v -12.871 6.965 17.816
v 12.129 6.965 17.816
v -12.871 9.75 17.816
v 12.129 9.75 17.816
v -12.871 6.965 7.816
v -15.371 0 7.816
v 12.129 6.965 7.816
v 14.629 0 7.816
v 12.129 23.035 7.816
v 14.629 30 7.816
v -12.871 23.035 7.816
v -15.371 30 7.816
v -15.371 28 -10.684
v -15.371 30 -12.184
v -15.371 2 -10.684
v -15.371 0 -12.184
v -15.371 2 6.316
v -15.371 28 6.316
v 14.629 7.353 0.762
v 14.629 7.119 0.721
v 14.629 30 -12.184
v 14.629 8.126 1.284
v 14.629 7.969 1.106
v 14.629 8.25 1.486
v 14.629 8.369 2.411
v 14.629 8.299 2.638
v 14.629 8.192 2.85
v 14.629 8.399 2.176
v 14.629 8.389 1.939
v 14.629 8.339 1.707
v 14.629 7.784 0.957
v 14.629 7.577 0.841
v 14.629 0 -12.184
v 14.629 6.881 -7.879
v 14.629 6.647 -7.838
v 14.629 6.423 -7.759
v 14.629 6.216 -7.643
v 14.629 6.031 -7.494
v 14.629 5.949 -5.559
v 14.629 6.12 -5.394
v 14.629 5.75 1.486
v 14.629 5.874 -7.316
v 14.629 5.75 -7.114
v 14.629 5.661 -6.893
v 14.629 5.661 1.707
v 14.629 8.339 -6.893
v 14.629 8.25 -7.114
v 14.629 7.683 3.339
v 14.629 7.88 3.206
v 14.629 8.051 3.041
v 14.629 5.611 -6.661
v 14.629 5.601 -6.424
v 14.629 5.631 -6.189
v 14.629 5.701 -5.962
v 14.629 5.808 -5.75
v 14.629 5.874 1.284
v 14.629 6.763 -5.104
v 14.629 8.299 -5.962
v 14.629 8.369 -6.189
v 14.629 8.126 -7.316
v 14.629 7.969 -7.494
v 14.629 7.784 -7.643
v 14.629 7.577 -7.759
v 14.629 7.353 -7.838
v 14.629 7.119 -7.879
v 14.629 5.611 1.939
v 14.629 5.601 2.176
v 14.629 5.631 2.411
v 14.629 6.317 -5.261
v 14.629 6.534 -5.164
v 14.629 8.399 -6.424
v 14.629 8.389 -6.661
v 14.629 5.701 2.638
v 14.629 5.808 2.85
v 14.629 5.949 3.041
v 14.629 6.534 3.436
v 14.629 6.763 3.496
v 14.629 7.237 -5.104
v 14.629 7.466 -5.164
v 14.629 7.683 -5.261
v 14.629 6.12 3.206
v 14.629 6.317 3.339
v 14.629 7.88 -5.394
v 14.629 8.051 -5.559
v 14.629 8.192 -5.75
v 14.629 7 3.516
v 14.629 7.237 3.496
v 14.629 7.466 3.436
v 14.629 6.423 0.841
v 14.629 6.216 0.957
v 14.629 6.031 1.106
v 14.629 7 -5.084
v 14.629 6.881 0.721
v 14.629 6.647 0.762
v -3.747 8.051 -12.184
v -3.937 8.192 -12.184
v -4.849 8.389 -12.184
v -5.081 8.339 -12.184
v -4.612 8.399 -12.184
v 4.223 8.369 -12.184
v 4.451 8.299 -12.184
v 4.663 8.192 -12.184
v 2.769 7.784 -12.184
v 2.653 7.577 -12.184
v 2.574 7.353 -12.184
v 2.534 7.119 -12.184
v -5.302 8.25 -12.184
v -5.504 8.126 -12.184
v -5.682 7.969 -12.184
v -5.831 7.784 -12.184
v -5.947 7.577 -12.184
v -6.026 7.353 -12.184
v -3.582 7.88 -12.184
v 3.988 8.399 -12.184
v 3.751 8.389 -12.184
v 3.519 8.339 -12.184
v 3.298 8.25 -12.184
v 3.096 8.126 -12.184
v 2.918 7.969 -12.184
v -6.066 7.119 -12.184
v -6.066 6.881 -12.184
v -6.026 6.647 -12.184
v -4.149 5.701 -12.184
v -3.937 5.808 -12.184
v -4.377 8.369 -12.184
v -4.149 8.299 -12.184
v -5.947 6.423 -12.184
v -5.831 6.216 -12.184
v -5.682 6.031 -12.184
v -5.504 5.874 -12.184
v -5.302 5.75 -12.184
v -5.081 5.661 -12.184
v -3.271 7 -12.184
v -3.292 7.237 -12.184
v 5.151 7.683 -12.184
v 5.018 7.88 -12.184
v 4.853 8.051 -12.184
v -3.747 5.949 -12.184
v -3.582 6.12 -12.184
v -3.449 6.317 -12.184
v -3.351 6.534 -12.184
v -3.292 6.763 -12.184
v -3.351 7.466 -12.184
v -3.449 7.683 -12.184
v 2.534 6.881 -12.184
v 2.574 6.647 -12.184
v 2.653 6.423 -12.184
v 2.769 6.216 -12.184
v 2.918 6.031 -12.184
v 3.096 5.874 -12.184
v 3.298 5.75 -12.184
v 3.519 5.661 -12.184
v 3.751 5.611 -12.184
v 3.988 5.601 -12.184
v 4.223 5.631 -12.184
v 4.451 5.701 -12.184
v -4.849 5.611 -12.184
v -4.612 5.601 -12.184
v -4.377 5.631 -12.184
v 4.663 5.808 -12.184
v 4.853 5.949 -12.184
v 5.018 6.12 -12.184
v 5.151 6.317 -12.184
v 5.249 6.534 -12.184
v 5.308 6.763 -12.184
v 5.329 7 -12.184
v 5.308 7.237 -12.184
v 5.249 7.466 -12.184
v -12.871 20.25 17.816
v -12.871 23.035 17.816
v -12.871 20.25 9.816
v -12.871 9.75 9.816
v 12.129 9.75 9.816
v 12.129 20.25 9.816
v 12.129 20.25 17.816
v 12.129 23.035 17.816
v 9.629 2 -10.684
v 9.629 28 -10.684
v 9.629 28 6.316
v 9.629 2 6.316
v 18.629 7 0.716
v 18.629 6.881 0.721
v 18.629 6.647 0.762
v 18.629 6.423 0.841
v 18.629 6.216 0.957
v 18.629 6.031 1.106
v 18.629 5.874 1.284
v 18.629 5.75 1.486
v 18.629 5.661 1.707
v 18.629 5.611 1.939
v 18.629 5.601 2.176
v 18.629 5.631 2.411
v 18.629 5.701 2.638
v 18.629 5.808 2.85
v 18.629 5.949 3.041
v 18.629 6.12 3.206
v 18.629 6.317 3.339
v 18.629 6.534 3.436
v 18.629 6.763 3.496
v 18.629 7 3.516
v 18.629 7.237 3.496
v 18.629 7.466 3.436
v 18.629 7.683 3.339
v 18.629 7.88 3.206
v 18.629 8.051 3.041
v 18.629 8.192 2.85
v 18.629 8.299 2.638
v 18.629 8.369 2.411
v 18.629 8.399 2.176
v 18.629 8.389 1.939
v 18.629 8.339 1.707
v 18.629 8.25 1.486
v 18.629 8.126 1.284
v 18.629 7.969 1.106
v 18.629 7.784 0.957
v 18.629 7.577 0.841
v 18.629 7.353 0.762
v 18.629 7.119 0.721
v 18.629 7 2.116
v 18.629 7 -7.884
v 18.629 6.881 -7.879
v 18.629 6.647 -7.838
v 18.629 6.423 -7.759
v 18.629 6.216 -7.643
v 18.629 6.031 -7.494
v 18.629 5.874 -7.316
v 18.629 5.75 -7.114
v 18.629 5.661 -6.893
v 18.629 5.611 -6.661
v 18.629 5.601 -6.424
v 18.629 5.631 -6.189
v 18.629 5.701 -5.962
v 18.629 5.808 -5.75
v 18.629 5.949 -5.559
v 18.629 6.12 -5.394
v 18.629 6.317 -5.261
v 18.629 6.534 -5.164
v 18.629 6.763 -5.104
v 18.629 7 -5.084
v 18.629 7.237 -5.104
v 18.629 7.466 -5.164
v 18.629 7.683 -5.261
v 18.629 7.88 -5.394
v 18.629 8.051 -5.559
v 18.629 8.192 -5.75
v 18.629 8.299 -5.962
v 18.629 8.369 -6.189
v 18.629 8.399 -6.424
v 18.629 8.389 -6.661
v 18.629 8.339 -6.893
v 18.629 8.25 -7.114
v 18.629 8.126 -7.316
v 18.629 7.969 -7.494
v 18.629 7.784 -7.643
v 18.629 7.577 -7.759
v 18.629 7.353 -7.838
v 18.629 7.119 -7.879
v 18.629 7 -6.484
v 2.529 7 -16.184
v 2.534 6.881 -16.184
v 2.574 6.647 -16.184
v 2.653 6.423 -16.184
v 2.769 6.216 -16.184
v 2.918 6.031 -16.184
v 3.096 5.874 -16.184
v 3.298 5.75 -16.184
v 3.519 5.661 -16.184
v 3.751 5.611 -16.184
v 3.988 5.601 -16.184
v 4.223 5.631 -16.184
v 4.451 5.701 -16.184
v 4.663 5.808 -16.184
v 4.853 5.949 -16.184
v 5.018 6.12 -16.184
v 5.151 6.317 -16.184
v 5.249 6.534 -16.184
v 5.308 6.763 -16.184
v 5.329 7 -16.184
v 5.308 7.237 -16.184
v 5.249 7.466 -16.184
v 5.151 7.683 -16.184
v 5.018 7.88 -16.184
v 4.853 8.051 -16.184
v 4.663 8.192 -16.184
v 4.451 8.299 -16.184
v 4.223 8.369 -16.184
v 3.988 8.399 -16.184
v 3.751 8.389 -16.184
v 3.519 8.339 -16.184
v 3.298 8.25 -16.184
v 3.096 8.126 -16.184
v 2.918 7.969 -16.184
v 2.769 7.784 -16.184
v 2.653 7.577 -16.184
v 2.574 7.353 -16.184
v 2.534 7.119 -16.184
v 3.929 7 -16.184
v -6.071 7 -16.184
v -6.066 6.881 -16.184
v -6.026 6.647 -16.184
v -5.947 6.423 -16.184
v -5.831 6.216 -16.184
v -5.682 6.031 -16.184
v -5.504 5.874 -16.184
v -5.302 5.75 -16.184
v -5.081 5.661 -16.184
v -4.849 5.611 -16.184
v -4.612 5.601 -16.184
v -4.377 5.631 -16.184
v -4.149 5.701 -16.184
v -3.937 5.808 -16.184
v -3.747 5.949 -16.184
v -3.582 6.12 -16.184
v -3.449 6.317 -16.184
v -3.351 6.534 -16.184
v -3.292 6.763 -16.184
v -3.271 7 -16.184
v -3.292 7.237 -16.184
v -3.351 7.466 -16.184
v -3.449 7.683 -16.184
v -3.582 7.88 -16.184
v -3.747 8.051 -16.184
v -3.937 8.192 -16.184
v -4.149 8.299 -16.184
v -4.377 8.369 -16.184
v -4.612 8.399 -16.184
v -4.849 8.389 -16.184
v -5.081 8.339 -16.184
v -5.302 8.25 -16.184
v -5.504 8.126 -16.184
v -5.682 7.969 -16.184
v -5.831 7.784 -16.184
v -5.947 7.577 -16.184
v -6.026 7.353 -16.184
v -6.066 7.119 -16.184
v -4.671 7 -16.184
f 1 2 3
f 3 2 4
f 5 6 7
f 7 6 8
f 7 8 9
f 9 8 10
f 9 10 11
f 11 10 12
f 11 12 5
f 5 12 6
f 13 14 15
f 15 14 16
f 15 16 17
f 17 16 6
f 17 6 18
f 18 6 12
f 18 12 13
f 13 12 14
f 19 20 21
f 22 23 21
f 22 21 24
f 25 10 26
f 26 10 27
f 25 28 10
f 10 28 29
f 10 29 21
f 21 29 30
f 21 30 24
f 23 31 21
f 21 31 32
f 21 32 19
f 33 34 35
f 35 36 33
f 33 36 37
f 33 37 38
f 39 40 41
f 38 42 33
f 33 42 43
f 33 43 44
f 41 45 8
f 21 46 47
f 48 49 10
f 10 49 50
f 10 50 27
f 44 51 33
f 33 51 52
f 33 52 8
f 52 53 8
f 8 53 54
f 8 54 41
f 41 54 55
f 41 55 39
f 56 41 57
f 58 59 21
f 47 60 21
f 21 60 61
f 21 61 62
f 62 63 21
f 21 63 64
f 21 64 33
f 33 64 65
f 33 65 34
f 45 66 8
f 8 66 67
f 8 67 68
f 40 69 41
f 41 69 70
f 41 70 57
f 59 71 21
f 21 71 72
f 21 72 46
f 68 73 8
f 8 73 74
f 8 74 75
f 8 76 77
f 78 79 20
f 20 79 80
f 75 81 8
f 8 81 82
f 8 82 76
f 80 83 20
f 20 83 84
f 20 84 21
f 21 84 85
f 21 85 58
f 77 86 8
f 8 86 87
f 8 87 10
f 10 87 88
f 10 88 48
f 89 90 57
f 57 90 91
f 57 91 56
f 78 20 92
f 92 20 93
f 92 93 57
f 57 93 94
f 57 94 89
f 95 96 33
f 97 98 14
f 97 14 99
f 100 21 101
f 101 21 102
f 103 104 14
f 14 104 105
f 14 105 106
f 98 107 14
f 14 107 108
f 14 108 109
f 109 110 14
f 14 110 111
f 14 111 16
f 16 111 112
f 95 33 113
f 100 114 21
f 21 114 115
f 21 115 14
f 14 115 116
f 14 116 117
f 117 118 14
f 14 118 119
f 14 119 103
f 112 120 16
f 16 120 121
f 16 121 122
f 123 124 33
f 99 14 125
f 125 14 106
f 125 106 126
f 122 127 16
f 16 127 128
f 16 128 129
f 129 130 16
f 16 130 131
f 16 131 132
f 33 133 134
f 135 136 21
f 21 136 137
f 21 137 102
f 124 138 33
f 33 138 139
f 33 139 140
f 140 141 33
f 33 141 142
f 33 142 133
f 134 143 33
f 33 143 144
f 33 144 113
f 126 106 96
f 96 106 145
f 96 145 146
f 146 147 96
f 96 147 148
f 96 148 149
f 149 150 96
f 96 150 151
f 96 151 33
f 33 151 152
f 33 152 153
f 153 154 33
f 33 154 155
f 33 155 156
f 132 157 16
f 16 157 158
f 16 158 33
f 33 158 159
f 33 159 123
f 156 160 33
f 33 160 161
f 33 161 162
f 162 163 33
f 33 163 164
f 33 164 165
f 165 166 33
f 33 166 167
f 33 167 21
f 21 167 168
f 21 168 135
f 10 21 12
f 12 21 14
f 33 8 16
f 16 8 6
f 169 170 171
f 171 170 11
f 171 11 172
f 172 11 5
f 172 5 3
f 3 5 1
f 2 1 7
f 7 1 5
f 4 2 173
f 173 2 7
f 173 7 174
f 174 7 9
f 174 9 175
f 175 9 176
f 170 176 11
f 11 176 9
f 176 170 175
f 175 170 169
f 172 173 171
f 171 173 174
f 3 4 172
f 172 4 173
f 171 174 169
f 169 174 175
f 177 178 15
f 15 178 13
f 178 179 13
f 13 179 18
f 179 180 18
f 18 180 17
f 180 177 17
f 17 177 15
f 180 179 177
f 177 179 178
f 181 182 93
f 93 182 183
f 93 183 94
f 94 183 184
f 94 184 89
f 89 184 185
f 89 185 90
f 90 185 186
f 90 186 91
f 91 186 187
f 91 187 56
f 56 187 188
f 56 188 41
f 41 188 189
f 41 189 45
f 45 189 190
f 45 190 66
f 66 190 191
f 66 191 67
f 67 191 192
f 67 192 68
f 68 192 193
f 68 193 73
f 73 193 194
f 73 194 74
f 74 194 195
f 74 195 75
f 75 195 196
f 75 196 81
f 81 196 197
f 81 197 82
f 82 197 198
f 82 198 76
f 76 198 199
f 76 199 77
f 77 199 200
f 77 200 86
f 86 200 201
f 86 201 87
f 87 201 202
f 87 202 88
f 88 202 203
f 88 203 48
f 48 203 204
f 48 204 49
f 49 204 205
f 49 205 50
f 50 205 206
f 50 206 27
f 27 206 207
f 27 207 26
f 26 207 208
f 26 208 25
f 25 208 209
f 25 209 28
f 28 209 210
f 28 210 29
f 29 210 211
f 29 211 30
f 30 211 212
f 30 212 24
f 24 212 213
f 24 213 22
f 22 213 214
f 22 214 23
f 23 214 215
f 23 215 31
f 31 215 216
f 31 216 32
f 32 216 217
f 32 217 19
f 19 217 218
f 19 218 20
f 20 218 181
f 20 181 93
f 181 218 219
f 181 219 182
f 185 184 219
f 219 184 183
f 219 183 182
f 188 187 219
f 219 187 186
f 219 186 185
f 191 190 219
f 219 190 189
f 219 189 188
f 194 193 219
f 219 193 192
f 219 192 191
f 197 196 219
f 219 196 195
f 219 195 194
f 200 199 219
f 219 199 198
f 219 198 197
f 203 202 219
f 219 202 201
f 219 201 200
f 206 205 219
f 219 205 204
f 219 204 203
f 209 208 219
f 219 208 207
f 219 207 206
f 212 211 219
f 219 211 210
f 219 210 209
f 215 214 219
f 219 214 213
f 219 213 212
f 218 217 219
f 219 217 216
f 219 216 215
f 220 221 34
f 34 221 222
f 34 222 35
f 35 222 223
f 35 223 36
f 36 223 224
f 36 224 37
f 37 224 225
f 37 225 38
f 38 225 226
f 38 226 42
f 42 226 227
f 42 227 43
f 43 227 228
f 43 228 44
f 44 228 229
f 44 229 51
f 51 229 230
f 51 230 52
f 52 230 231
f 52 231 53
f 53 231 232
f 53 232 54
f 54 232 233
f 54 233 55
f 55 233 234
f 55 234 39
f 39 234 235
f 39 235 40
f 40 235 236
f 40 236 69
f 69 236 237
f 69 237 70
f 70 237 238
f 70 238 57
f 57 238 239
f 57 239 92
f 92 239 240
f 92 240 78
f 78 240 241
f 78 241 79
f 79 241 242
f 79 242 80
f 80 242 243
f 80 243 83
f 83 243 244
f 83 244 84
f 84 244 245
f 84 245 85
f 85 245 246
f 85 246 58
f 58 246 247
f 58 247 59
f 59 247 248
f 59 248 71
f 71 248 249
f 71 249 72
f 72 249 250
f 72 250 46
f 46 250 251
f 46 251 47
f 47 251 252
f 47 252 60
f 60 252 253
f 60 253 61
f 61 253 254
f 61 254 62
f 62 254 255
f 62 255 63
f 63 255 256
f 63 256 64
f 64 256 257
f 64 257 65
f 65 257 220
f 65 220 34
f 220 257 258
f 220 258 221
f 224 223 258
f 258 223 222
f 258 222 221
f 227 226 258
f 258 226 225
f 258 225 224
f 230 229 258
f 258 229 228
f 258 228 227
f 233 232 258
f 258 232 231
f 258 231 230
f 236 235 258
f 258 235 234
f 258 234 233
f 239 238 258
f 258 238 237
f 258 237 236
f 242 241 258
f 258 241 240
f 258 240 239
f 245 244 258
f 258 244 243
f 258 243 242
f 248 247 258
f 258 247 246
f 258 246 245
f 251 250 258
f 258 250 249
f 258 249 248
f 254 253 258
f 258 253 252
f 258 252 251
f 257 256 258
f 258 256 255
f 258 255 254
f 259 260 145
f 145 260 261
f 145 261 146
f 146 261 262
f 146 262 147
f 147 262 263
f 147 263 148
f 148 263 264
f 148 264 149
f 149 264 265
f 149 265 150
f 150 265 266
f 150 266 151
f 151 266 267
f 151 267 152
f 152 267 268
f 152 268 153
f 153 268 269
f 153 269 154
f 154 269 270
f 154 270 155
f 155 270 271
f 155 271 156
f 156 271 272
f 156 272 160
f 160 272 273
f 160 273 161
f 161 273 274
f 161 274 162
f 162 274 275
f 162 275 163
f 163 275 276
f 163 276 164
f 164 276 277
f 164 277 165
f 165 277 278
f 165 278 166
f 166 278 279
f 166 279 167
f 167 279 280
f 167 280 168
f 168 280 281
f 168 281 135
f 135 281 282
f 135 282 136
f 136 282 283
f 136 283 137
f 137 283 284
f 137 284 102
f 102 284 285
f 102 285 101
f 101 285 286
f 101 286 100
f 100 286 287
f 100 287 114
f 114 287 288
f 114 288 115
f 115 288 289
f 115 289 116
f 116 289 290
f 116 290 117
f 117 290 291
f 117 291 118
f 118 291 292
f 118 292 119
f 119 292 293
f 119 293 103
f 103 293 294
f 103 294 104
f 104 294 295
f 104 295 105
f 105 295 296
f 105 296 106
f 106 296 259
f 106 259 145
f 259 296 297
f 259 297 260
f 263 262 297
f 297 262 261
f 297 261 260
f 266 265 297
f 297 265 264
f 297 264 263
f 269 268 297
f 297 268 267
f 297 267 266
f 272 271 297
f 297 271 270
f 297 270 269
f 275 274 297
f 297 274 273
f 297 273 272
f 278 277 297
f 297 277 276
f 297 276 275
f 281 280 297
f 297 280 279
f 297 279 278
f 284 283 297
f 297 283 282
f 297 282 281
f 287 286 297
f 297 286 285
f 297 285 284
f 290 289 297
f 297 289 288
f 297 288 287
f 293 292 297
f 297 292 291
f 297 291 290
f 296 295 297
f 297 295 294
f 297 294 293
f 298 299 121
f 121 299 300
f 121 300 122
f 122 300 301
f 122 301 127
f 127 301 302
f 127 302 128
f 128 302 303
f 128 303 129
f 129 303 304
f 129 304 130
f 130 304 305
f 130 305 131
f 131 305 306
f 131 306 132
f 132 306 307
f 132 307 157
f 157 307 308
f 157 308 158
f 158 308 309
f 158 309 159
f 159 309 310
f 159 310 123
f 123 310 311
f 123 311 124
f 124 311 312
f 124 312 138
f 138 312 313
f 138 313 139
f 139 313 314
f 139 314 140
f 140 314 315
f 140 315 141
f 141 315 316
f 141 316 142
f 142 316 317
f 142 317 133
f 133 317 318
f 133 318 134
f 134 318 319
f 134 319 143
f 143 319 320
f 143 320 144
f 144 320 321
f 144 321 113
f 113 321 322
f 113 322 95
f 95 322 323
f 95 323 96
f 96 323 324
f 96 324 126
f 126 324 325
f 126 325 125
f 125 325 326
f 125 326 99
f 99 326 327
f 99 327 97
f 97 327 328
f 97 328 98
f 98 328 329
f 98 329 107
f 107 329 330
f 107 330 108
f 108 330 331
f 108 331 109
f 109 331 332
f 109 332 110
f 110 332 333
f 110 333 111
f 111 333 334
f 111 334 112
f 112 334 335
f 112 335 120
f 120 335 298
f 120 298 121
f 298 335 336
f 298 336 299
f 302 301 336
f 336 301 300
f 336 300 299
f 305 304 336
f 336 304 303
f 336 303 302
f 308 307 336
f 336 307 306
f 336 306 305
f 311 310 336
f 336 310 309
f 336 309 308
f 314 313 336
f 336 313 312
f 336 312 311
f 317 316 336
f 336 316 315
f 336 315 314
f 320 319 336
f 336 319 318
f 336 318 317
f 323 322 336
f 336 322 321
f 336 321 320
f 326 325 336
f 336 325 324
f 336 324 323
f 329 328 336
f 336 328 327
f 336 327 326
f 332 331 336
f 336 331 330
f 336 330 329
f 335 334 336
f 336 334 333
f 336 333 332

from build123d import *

# Parameters (mm, degrees)
SKETCH_1_W          = 30
SKETCH_1_H          = 20
EXTRUDE_1_DEPTH     = 30
SKETCH_3_W          = 25
SKETCH_3_H          = 16.07
EXTRUDE_2_DEPTH     = 10
SKETCH_7_W          = 8
SKETCH_7_H          = 10.5
CUT_EXTRUDE_1_DEPTH = 45.426074479
SKETCH_9_W          = 17
SKETCH_9_H          = 26
CUT_EXTRUDE_2_DEPTH = 25
SKETCH_11_R         = 1.4
EXTRUDE_3_DEPTH     = 4
SKETCH_12_R         = 1.4
EXTRUDE_4_DEPTH     = 4


with BuildPart() as part:
    # 草图1 → 凸台-拉伸1 (new body)
    with BuildSketch(Plane(origin=(0, 0, 0), x_dir=(1, 0, 0), z_dir=(0, 1, 0))):
        with Locations((-0.371492922, 2.183544304)):
            Rectangle(SKETCH_1_W, SKETCH_1_H)
    extrude(amount=EXTRUDE_1_DEPTH)

    # 草图3 → 凸台-拉伸2 (add)
    with BuildSketch(Plane.XY.offset(7.816455696)):
        with Locations((-0.371492922, 15)):
            Rectangle(SKETCH_3_W, SKETCH_3_H)
    extrude(amount=EXTRUDE_2_DEPTH)

    # 草图7 → 切除-拉伸1 (cut, through all)
    with BuildSketch(Plane.ZY.offset(12.871492922)):
        with Locations((13.816455696, 15)):
            Rectangle(SKETCH_7_W, SKETCH_7_H)
    extrude(amount=-CUT_EXTRUDE_1_DEPTH, mode=Mode.SUBTRACT)

    # 草图9 → 切除-拉伸2 (cut)
    with BuildSketch(Plane.ZY.offset(15.371492922)):
        with Locations((-2.183544304, 15)):
            Rectangle(SKETCH_9_W, SKETCH_9_H)
    extrude(amount=-CUT_EXTRUDE_2_DEPTH, mode=Mode.SUBTRACT)

    # 草图11 → 凸台-拉伸3 (add)
    with BuildSketch(Plane(origin=(14.628507078, 0, 0), x_dir=(0, 0, -1), z_dir=(1, 0, 0))):
        with Locations(Location((-2.116455696, 7, 0), (0, 0, 180))):
            Circle(SKETCH_11_R)
        with Locations(Location((6.483544304, 7, 0), (0, 0, 180))):
            Circle(SKETCH_11_R)
    extrude(amount=EXTRUDE_3_DEPTH)

    # 草图12 → 凸台-拉伸4 (add)
    with BuildSketch(Plane(origin=(0, 0, -12.183544304), x_dir=(-1, 0, 0), z_dir=(0, 0, -1))):
        with Locations(Location((-3.928507078, 7, 0), (0, 0, 180))):
            Circle(SKETCH_12_R)
        with Locations(Location((4.671492922, 7, 0), (0, 0, 180))):
            Circle(SKETCH_12_R)
    extrude(amount=EXTRUDE_4_DEPTH)


solid = part.part
